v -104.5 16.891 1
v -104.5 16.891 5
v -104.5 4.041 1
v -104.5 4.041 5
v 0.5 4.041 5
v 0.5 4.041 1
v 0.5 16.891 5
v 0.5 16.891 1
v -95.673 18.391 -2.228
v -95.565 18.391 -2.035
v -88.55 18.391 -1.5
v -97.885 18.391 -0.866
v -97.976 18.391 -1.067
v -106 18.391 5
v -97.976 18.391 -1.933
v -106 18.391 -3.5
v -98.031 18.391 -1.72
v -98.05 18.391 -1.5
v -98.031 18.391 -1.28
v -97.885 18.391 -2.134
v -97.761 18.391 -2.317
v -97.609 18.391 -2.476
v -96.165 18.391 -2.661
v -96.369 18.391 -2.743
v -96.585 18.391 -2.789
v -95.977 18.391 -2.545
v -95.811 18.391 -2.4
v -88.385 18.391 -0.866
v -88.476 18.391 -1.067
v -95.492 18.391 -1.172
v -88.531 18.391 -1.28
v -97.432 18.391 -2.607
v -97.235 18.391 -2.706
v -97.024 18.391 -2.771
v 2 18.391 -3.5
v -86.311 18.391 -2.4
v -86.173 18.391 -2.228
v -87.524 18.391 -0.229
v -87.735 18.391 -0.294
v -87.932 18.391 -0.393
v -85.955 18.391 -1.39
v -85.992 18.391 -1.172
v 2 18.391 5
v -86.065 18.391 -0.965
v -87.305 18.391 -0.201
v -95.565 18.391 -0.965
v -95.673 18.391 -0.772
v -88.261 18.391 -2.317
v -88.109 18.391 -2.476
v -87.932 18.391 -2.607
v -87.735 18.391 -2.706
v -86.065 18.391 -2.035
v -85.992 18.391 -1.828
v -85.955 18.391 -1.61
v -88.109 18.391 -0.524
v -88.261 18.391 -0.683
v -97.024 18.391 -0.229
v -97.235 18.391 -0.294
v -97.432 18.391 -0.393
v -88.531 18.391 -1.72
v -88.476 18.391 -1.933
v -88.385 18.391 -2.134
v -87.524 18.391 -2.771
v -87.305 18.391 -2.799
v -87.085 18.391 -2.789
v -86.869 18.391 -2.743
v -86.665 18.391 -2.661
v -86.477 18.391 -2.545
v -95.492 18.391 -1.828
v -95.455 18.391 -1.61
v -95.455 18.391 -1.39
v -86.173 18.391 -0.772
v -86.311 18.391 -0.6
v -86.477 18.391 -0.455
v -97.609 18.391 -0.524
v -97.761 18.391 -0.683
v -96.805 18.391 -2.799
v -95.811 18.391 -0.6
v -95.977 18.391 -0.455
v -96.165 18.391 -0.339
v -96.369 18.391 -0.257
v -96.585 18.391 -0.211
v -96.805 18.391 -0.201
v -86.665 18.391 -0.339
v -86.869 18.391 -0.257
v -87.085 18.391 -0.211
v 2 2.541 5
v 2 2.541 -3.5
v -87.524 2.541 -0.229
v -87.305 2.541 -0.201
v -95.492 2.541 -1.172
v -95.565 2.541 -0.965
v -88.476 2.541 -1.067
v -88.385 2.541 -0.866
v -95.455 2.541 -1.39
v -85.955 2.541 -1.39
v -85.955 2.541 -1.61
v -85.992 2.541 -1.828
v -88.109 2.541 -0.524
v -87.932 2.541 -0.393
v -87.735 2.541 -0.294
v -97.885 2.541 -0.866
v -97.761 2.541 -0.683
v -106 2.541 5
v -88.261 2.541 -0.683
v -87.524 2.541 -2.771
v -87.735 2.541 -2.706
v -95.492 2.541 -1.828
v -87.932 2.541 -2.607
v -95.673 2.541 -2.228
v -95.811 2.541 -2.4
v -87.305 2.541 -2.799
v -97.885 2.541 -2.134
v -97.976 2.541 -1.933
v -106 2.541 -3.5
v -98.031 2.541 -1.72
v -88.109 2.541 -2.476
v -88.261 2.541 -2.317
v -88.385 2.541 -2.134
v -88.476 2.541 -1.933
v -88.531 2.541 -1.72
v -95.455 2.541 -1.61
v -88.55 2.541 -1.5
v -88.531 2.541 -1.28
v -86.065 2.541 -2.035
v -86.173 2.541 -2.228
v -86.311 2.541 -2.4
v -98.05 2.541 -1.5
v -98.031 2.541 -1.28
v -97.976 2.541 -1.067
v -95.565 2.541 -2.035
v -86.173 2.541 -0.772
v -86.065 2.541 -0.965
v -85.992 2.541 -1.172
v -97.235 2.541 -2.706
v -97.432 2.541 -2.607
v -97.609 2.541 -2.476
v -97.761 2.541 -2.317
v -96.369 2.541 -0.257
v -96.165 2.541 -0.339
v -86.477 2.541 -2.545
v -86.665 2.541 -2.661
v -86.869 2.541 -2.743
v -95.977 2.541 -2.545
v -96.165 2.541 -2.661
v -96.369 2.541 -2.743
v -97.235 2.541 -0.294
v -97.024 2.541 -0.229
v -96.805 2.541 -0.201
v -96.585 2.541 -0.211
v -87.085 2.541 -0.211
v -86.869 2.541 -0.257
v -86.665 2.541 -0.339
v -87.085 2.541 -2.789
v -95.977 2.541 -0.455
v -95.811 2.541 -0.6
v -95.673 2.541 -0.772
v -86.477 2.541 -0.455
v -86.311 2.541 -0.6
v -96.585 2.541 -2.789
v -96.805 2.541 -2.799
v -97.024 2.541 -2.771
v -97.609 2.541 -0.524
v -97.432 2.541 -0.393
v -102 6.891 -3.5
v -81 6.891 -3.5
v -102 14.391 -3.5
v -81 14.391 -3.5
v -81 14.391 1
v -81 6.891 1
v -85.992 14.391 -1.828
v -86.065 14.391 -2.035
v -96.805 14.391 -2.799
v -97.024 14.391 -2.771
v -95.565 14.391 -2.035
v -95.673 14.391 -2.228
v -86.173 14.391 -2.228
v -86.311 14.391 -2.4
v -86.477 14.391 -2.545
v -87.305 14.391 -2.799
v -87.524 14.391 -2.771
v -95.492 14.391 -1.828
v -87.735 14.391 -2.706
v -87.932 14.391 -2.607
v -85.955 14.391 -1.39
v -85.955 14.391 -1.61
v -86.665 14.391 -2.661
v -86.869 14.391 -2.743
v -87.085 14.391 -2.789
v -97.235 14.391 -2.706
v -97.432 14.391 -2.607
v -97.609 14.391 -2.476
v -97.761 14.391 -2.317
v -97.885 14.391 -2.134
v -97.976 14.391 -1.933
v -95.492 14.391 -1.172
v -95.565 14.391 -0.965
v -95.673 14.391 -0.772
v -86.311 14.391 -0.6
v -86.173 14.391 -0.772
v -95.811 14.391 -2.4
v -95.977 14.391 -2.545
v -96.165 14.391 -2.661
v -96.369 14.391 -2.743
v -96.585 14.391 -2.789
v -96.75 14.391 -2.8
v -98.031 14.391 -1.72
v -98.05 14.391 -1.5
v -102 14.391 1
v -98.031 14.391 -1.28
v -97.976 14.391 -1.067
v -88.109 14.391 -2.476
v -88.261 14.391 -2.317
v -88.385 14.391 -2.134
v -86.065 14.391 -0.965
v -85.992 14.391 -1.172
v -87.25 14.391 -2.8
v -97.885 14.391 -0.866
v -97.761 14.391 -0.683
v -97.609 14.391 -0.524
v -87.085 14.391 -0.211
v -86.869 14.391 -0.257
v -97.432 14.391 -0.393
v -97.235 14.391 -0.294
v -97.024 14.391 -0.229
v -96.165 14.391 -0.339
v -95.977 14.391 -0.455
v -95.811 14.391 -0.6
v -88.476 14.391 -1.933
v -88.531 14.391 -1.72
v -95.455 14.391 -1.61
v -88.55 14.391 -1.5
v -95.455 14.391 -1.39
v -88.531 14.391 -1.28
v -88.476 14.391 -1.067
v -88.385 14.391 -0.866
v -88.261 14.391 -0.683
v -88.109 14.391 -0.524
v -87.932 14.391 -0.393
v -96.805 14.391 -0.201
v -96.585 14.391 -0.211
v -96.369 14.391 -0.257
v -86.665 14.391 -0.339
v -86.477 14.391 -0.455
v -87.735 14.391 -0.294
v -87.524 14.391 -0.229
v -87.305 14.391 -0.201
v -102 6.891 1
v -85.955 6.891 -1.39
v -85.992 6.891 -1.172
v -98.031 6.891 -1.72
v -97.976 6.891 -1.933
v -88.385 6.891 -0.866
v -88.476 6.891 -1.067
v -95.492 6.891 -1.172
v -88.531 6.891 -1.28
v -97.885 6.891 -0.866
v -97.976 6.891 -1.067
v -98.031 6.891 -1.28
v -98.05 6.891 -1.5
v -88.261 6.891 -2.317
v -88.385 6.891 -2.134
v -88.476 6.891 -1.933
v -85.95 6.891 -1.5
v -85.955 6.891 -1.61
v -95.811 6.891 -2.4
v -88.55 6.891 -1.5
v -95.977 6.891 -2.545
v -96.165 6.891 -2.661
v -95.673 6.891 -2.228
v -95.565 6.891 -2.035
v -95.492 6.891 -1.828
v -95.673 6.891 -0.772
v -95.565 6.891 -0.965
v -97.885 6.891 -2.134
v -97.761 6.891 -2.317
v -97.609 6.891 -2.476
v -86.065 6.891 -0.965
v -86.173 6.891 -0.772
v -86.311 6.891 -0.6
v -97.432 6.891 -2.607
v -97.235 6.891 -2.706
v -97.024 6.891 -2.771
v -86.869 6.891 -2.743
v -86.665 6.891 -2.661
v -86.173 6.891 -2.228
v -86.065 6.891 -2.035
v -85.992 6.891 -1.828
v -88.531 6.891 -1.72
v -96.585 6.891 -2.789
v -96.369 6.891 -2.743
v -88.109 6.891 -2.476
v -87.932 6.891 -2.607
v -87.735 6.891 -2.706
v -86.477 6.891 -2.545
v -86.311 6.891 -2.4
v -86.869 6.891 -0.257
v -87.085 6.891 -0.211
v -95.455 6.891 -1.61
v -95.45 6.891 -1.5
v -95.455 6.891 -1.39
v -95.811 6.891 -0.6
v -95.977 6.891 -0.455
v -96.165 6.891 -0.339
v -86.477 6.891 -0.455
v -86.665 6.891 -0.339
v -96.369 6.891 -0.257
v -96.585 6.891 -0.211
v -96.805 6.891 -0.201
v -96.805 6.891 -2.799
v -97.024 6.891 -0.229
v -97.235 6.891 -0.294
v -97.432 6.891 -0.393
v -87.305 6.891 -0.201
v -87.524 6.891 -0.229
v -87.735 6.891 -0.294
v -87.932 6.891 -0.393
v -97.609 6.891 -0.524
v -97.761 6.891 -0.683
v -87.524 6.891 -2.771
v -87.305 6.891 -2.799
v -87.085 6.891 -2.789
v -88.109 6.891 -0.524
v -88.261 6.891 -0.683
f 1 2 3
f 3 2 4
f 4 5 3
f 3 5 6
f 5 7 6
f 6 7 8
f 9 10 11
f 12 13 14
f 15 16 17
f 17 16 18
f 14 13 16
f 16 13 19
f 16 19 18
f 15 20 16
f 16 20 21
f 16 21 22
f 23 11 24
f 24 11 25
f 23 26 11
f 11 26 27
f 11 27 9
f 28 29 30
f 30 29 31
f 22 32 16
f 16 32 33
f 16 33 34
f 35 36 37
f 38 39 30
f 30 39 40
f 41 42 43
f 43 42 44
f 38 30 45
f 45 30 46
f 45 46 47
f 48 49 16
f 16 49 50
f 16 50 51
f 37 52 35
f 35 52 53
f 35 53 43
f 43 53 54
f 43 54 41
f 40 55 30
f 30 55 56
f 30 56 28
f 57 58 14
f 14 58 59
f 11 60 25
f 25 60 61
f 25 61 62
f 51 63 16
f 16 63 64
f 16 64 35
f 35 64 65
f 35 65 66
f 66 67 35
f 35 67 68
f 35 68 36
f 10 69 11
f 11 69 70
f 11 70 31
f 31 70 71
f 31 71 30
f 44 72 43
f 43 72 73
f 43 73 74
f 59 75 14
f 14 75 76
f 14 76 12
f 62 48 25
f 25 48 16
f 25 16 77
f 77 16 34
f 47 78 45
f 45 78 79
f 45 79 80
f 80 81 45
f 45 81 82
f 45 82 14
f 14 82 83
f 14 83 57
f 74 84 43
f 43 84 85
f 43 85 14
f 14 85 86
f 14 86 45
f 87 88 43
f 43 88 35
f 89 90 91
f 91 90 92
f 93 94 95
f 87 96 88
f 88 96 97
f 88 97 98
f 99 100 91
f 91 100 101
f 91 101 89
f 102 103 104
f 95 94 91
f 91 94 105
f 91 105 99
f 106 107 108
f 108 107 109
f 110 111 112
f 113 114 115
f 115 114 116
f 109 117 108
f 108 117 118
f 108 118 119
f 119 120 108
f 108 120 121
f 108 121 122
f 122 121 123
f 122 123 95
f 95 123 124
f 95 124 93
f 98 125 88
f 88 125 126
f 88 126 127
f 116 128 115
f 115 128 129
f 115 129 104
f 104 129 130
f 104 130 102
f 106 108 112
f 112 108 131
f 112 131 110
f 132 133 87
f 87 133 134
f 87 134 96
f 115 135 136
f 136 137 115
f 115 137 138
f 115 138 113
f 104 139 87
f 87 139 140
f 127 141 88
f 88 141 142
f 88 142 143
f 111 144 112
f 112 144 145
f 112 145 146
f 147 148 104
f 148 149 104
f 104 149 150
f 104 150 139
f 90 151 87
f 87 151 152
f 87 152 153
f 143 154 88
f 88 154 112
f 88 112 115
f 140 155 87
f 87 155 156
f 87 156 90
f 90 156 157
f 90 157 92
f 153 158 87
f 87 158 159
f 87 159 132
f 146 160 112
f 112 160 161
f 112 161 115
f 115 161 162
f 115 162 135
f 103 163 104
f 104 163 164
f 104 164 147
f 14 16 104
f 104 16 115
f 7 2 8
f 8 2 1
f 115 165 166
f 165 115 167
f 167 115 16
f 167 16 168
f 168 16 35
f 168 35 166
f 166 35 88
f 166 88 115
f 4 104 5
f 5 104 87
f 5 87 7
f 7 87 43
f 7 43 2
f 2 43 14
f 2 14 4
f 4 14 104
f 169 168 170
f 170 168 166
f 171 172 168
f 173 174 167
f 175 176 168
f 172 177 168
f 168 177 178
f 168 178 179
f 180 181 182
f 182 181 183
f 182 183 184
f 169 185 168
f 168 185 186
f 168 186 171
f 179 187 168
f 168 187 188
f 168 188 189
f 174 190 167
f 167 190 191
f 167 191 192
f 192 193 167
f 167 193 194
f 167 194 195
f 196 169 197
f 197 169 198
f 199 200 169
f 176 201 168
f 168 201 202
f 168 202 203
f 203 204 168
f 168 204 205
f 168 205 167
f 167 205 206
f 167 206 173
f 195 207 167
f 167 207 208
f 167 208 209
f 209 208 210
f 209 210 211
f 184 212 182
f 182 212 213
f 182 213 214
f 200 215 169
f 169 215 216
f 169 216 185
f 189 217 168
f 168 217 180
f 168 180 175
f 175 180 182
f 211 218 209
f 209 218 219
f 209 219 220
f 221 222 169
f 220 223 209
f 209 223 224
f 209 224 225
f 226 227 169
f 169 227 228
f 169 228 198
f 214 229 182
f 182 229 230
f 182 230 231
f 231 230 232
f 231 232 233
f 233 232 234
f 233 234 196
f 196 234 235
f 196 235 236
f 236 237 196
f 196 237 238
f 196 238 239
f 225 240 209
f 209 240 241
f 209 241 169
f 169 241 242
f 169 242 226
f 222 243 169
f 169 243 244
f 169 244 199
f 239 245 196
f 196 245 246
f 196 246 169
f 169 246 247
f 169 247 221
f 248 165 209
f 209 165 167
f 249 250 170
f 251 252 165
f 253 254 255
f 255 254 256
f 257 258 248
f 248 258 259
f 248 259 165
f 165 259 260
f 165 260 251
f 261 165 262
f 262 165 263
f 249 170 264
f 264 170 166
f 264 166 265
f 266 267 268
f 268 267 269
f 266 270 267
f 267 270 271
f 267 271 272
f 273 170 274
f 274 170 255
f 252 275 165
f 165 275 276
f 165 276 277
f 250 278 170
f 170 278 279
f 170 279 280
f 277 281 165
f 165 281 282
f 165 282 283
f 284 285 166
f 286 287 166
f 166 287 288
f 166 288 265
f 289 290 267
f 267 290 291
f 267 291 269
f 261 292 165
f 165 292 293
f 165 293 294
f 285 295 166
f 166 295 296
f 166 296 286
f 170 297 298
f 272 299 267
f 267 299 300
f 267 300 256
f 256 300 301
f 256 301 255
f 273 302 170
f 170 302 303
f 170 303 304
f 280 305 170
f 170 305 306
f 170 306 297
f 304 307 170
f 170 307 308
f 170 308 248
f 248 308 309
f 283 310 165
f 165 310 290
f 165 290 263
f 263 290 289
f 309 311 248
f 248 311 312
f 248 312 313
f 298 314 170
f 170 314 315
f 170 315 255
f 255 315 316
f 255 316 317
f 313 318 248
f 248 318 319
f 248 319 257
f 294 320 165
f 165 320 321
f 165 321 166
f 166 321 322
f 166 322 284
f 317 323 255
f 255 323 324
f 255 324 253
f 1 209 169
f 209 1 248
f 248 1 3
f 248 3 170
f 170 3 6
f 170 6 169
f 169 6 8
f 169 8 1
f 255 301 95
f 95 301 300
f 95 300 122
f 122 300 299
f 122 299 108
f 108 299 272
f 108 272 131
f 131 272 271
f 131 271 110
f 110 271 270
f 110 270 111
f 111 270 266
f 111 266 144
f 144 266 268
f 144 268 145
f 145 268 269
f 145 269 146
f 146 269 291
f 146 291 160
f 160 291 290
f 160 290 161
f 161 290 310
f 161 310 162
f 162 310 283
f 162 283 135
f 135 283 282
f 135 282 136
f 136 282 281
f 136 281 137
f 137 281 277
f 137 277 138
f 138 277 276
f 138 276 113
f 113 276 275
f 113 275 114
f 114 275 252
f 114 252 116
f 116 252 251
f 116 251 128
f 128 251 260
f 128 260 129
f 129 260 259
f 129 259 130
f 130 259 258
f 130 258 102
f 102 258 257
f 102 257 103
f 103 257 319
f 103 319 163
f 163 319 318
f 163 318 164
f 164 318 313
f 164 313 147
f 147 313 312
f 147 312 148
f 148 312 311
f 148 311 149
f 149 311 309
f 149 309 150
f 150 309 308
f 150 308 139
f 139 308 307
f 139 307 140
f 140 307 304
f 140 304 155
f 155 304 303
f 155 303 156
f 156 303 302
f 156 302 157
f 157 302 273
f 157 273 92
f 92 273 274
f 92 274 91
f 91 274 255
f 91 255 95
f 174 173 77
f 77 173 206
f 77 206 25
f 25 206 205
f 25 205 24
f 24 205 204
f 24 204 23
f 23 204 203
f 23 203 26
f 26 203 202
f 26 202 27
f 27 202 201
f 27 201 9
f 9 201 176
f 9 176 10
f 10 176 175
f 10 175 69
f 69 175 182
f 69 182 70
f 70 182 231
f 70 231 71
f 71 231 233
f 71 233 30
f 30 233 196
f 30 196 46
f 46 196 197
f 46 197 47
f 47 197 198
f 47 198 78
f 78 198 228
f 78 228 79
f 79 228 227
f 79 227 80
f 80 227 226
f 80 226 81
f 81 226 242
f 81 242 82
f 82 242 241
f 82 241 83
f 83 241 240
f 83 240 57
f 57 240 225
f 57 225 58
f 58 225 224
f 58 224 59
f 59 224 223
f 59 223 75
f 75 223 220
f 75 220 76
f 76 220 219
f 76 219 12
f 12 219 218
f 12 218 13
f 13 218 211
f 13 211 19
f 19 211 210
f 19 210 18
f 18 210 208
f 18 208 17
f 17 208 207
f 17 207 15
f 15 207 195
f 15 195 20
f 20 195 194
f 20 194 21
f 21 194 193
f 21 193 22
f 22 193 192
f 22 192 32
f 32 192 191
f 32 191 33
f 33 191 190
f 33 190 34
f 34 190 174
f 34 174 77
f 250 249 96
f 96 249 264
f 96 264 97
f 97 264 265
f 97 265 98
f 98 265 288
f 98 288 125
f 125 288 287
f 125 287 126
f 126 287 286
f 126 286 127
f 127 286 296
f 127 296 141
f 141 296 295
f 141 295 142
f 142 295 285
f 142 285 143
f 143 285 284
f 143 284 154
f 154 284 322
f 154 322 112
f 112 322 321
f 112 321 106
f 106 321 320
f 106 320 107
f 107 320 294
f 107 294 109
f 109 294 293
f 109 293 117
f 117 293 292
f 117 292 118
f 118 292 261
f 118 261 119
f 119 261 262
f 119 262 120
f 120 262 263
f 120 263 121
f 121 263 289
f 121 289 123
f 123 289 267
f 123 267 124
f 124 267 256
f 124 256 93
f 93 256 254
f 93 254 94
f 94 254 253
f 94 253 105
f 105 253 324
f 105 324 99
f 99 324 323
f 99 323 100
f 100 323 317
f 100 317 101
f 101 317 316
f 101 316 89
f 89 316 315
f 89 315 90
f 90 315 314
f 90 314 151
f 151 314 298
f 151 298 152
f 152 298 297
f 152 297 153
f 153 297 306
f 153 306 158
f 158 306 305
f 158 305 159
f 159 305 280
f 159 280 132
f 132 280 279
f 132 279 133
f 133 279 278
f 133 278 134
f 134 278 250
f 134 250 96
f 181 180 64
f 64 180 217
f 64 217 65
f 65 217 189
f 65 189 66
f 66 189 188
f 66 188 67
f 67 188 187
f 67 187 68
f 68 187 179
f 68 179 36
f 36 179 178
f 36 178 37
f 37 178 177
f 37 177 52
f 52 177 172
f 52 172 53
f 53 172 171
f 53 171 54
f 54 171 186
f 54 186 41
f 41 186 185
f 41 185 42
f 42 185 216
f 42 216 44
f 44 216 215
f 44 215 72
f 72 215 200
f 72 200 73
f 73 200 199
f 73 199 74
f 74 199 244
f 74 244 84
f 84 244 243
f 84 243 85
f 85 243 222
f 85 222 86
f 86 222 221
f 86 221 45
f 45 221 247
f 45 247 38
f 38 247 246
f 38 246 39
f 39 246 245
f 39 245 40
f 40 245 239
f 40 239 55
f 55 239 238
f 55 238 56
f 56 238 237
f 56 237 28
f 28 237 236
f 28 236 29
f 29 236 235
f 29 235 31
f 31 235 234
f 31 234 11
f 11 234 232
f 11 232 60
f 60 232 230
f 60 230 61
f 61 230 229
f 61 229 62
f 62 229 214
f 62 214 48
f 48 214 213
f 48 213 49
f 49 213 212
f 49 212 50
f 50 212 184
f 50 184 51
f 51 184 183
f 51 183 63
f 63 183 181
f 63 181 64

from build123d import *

# Parameters (mm, degrees)
RESSALTO_EXTRUS_O1_DEPTH      = 5
RESSALTO_EXTRUS_O1_DEPTH_BACK = 3.5
ESBO_O1_3_W                   = 105
ESBO_O1_3_H                   = 12.85
ESBO_O1_3_W_2                 = 21
ESBO_O1_3_H_2                 = 7.5
RESSALTO_EXTRUS_O2_DEPTH      = 3.5
ESBO_O1_4_W                   = 105
ESBO_O1_4_H                   = 12.85
ESBO_O1_4_W_2                 = 21
ESBO_O1_4_H_2                 = 7.5
RESSALTO_EXTRUS_O3_DEPTH      = 1
ESBO_O2_R                     = 1.3
CORTE_EXTRUS_O2_DEPTH         = 110.701267602


with BuildPart() as part:
    # Esboço1 → Ressalto-extrusão1 (new, two sides: drawn at the far end of the back side and taken through both)
    with BuildSketch(Plane.XY.offset(-RESSALTO_EXTRUS_O1_DEPTH_BACK)):
        Polygon((-106, 18.391143911), (-106, 2.541143911), (-93, 2.541143911), (2, 2.541143911), (2, 18.391143911), (-95, 18.391143911), align=None)
        Polygon((-96.5, 16.891143911), (0.5, 16.891143911), (0.5, 4.041143911), (-94.5, 4.041143911), (-104.5, 4.041143911), (-104.5, 16.891143911), align=None, mode=Mode.SUBTRACT)
    extrude(amount=RESSALTO_EXTRUS_O1_DEPTH + RESSALTO_EXTRUS_O1_DEPTH_BACK)

    # Esboço1<3> → Ressalto-extrusão2 (add)
    with BuildSketch(Plane.XY):
        with Locations((-52, 10.466143911)):
            Rectangle(ESBO_O1_3_W, ESBO_O1_3_H)
        with Locations((-91.5, 10.641143911)):
            Rectangle(ESBO_O1_3_W_2, ESBO_O1_3_H_2, mode=Mode.SUBTRACT)
    extrude(amount=-RESSALTO_EXTRUS_O2_DEPTH)

    # Esboço1<4> → Ressalto-extrusão3 (add)
    with BuildSketch(Plane.XY):
        with Locations((-52, 10.466143911)):
            Rectangle(ESBO_O1_4_W, ESBO_O1_4_H)
        with Locations((-91.5, 10.641143911)):
            Rectangle(ESBO_O1_4_W_2, ESBO_O1_4_H_2, mode=Mode.SUBTRACT)
    extrude(amount=RESSALTO_EXTRUS_O3_DEPTH)

    # Esboço2 → Corte-extrusão2 (cut, through all)
    with BuildSketch(Plane(origin=(0, 18.391143911, -18.391143911), x_dir=(1, 0, 0), z_dir=(0, -1, 0))):
        with Locations((-96.75, 16.891143911)):
            Circle(ESBO_O2_R)
        with Locations((-87.25, 16.891143911)):
            Circle(ESBO_O2_R)
    extrude(amount=CORTE_EXTRUS_O2_DEPTH, mode=Mode.SUBTRACT)


solid = part.part
